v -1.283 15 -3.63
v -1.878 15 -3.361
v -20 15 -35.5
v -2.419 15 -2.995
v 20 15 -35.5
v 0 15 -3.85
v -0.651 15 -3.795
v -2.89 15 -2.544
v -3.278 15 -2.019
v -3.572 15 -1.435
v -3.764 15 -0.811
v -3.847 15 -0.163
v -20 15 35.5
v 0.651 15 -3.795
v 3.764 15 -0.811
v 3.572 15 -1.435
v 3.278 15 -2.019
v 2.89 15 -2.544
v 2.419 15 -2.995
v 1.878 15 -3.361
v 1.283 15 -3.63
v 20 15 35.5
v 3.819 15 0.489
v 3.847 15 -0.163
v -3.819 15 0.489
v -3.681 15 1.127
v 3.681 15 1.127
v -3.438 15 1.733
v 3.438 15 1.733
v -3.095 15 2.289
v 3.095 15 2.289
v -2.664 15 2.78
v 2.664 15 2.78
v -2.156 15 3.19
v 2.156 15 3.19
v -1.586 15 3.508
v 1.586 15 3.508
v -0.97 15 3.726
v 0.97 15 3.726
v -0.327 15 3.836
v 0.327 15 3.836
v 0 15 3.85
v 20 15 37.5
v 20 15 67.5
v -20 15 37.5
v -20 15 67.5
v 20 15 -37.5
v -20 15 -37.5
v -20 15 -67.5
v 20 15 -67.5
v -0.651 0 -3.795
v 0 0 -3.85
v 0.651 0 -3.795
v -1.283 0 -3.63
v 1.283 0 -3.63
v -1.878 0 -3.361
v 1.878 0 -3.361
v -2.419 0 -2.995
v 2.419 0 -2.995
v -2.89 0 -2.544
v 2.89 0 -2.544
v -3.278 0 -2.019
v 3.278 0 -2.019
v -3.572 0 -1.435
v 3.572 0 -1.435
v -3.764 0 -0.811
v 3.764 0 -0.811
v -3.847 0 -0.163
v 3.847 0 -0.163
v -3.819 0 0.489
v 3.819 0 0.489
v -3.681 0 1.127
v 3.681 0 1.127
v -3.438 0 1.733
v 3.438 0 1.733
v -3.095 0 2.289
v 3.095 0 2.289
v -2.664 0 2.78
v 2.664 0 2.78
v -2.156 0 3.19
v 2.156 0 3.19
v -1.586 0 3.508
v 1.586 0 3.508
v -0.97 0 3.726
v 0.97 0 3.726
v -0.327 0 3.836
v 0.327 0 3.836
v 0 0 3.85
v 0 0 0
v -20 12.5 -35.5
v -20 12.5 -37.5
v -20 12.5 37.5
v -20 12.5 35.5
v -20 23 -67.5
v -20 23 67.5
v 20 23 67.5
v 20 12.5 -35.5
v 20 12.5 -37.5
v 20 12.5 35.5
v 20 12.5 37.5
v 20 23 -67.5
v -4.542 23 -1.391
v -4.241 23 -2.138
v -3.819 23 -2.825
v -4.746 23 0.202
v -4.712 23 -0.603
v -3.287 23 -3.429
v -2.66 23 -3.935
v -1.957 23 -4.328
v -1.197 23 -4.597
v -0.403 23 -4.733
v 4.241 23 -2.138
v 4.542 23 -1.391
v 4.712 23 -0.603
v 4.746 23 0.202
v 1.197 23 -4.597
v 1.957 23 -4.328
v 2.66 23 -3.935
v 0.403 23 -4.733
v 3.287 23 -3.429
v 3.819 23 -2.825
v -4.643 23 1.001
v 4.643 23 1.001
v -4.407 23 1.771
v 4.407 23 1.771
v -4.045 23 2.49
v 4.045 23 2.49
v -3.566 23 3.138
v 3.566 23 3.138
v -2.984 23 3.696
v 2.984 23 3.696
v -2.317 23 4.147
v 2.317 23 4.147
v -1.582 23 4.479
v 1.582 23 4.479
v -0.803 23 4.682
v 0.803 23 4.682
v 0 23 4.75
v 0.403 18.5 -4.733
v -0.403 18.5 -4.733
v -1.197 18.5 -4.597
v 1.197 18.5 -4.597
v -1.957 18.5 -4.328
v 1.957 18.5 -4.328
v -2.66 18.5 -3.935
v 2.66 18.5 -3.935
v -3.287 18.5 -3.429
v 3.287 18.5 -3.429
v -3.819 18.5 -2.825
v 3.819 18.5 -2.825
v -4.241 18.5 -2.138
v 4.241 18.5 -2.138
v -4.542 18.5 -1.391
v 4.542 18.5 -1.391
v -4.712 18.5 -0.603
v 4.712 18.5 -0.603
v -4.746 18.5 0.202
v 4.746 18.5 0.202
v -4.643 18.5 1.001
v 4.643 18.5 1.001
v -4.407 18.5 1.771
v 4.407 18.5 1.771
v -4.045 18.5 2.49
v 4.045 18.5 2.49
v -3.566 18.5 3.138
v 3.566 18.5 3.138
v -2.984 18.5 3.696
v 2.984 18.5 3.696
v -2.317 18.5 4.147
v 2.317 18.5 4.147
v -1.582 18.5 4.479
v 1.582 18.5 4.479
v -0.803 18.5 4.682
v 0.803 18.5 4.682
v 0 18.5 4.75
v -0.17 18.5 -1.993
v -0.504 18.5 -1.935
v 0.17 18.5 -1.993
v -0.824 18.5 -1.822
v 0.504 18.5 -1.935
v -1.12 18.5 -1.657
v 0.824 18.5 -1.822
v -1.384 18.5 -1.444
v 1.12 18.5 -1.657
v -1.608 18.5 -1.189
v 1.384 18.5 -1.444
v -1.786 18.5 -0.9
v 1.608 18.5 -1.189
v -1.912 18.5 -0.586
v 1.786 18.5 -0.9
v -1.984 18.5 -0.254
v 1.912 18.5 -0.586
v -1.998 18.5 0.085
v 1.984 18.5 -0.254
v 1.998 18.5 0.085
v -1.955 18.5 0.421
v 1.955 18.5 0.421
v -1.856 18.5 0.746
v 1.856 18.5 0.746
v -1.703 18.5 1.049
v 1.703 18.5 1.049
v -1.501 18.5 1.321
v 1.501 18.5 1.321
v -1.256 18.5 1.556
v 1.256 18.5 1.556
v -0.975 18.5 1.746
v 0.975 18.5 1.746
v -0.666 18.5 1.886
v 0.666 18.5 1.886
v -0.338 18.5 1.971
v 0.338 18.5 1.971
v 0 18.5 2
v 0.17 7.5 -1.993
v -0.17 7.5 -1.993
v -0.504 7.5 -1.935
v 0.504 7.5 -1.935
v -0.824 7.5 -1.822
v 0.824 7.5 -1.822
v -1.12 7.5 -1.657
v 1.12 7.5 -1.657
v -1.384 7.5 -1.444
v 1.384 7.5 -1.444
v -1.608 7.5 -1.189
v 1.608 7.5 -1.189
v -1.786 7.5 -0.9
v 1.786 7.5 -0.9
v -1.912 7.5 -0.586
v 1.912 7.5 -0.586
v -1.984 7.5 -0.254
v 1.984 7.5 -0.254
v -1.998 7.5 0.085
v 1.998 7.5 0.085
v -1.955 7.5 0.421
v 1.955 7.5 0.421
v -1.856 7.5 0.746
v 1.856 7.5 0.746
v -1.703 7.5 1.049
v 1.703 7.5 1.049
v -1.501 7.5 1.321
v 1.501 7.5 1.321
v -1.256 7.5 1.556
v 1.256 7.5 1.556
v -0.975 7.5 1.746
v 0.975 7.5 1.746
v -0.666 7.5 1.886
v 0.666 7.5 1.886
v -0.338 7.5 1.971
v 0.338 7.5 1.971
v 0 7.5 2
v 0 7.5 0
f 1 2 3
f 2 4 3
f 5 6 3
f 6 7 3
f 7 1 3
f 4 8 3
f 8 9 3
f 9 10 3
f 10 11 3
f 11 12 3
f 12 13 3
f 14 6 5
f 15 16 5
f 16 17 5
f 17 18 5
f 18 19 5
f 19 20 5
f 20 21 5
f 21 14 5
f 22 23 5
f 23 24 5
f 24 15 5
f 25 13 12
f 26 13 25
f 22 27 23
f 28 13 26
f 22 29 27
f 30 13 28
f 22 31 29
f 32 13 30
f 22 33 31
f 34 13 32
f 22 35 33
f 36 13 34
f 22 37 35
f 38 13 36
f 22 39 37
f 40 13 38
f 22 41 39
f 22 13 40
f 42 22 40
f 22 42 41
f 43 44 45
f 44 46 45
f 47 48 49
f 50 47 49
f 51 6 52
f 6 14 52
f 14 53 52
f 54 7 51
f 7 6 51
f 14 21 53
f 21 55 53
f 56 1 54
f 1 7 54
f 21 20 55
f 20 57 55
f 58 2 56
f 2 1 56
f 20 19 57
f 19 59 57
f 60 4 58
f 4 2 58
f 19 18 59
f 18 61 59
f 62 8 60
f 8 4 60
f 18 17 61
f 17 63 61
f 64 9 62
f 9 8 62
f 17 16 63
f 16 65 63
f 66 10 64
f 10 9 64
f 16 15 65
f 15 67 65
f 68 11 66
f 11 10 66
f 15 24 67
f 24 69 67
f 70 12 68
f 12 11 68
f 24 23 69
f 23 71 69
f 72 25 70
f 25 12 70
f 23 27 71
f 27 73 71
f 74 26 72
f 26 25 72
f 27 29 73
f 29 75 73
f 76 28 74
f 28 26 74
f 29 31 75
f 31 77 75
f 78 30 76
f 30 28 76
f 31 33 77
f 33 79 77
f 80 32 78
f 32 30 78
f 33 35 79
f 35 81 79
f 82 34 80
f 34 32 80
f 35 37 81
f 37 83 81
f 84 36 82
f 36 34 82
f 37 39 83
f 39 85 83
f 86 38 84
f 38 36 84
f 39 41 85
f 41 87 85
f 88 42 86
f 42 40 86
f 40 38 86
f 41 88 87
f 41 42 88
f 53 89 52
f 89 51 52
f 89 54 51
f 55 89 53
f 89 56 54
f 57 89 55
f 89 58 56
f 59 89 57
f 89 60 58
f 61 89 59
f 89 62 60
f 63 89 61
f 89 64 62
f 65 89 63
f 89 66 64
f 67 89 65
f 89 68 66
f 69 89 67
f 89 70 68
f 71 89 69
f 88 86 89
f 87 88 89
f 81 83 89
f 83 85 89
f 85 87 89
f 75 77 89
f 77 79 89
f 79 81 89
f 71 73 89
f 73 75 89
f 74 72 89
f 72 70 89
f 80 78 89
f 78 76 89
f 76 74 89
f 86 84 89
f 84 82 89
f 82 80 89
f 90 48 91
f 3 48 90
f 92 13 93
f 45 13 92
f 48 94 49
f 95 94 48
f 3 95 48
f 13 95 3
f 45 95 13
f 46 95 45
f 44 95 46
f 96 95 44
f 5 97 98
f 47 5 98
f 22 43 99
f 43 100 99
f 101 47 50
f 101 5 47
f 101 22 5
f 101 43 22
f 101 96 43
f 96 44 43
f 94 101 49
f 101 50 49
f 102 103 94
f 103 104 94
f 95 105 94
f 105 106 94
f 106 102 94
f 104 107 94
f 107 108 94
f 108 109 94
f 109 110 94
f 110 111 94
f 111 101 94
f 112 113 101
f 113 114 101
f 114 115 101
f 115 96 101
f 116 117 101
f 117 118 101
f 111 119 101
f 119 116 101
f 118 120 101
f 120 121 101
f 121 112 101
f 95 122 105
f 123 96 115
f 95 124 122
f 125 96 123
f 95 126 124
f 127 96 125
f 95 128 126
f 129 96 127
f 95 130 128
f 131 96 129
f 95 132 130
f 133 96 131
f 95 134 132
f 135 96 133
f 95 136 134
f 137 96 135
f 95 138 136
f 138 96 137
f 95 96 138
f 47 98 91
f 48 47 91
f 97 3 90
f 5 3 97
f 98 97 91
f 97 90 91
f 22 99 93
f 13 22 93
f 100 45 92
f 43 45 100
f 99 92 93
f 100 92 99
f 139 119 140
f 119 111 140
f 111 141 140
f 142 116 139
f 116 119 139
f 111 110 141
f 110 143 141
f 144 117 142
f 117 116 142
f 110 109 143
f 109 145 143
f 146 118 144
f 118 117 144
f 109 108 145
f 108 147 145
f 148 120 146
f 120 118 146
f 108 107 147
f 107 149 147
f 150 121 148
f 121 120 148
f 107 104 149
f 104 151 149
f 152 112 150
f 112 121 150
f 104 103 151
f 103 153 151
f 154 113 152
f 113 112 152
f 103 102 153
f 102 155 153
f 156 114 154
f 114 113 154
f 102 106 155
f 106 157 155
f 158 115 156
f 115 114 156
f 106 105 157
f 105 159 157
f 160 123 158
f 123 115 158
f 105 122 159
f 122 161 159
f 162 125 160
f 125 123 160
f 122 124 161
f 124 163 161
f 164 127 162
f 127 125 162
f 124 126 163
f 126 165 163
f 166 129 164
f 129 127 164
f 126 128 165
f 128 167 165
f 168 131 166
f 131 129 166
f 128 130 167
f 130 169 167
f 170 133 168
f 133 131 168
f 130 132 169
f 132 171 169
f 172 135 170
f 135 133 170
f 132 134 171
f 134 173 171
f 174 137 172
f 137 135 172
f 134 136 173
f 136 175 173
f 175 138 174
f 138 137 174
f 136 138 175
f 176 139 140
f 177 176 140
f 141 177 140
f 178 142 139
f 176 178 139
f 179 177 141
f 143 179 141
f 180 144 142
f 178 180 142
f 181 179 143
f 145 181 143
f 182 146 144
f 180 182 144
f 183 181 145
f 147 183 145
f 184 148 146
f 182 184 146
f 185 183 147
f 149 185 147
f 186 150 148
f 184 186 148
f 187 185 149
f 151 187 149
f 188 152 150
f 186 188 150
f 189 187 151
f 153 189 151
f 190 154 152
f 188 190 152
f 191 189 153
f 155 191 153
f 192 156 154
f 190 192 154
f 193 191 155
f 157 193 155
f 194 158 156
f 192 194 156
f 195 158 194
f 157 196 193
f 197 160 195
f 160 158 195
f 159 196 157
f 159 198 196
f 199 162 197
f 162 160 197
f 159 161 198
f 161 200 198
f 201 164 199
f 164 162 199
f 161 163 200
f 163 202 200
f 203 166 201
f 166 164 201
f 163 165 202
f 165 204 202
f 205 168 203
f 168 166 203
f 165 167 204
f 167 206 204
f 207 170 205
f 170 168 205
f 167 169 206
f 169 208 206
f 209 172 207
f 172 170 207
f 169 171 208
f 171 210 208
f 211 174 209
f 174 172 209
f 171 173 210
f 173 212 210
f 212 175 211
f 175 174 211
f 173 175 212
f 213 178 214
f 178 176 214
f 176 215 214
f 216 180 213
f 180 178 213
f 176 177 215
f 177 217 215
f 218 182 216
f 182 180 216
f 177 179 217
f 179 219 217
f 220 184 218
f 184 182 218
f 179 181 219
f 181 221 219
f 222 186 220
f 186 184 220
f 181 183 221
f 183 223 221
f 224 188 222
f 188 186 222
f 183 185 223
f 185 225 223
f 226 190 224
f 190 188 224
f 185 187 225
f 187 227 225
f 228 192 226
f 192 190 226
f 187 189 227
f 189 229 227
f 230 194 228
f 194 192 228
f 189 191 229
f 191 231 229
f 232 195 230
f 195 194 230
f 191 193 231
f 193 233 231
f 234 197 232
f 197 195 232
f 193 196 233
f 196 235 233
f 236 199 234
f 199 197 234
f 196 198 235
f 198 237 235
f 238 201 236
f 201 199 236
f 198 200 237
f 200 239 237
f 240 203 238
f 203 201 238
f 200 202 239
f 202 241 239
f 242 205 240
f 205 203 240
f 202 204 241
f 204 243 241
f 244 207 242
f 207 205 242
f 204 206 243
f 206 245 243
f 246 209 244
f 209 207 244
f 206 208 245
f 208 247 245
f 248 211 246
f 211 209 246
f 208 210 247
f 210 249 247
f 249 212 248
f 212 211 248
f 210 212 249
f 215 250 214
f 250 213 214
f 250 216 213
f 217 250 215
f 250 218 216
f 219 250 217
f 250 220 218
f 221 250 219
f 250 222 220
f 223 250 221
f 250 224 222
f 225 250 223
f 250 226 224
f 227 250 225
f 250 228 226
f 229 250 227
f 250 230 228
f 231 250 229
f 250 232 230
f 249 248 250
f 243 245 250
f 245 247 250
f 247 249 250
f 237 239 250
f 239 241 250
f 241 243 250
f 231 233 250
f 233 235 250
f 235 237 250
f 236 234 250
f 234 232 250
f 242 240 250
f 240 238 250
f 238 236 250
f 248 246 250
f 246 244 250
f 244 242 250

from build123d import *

# Parameters (mm, degrees)
SKETCH1_R           = 3.85
BOSS_EXTRUDE1_DEPTH = 15
SKETCH2_W           = 40
SKETCH2_H           = 135
BOSS_EXTRUDE3_DEPTH = 8
SKETCH3_W           = 40
SKETCH3_H           = 2
BOSS_EXTRUDE4_DEPTH = 2.5
SKETCH4_R           = 4.75
CUT_EXTRUDE1_DEPTH  = 4.5
SKETCH5_R           = 2
CUT_EXTRUDE2_DEPTH  = 11


with BuildPart() as part:
    # Sketch1 → Boss-Extrude1 (new body)
    with BuildSketch(Plane(origin=(0, 0, 0), x_dir=(1, 0, 0), z_dir=(0, 1, 0))):
        with Locations(Location((0, 0, 0), (0, 0, 270))):
            Circle(SKETCH1_R)
    extrude(amount=BOSS_EXTRUDE1_DEPTH)

    # Sketch2 → Boss-Extrude3 (add)
    with BuildSketch(Plane(origin=(0, 15, 0), x_dir=(1, 0, 0), z_dir=(0, 1, 0))):
        Rectangle(SKETCH2_W, SKETCH2_H)
    extrude(amount=BOSS_EXTRUDE3_DEPTH)

    # Sketch3 → Boss-Extrude4 (add)
    with BuildSketch(Plane.XZ.offset(-15)):
        with Locations((0, -36.5)):
            Rectangle(SKETCH3_W, SKETCH3_H)
        with Locations((0, 36.5)):
            Rectangle(SKETCH3_W, SKETCH3_H)
    extrude(amount=BOSS_EXTRUDE4_DEPTH)

    # Sketch4 → Cut-Extrude1 (cut)
    with BuildSketch(Plane(origin=(0, 23, 0), x_dir=(1, 0, 0), z_dir=(0, 1, 0))):
        with Locations(Location((0, 0, 0), (0, 0, 270))):
            Circle(SKETCH4_R)
    extrude(amount=-CUT_EXTRUDE1_DEPTH, mode=Mode.SUBTRACT)

    # Sketch5 → Cut-Extrude2 (cut)
    with BuildSketch(Plane(origin=(0, 18.5, 0), x_dir=(1, 0, 0), z_dir=(0, 1, 0))):
        with Locations(Location((0, 0, 0), (0, 0, 270))):
            Circle(SKETCH5_R)
    extrude(amount=-CUT_EXTRUDE2_DEPTH, mode=Mode.SUBTRACT)


solid = part.part
